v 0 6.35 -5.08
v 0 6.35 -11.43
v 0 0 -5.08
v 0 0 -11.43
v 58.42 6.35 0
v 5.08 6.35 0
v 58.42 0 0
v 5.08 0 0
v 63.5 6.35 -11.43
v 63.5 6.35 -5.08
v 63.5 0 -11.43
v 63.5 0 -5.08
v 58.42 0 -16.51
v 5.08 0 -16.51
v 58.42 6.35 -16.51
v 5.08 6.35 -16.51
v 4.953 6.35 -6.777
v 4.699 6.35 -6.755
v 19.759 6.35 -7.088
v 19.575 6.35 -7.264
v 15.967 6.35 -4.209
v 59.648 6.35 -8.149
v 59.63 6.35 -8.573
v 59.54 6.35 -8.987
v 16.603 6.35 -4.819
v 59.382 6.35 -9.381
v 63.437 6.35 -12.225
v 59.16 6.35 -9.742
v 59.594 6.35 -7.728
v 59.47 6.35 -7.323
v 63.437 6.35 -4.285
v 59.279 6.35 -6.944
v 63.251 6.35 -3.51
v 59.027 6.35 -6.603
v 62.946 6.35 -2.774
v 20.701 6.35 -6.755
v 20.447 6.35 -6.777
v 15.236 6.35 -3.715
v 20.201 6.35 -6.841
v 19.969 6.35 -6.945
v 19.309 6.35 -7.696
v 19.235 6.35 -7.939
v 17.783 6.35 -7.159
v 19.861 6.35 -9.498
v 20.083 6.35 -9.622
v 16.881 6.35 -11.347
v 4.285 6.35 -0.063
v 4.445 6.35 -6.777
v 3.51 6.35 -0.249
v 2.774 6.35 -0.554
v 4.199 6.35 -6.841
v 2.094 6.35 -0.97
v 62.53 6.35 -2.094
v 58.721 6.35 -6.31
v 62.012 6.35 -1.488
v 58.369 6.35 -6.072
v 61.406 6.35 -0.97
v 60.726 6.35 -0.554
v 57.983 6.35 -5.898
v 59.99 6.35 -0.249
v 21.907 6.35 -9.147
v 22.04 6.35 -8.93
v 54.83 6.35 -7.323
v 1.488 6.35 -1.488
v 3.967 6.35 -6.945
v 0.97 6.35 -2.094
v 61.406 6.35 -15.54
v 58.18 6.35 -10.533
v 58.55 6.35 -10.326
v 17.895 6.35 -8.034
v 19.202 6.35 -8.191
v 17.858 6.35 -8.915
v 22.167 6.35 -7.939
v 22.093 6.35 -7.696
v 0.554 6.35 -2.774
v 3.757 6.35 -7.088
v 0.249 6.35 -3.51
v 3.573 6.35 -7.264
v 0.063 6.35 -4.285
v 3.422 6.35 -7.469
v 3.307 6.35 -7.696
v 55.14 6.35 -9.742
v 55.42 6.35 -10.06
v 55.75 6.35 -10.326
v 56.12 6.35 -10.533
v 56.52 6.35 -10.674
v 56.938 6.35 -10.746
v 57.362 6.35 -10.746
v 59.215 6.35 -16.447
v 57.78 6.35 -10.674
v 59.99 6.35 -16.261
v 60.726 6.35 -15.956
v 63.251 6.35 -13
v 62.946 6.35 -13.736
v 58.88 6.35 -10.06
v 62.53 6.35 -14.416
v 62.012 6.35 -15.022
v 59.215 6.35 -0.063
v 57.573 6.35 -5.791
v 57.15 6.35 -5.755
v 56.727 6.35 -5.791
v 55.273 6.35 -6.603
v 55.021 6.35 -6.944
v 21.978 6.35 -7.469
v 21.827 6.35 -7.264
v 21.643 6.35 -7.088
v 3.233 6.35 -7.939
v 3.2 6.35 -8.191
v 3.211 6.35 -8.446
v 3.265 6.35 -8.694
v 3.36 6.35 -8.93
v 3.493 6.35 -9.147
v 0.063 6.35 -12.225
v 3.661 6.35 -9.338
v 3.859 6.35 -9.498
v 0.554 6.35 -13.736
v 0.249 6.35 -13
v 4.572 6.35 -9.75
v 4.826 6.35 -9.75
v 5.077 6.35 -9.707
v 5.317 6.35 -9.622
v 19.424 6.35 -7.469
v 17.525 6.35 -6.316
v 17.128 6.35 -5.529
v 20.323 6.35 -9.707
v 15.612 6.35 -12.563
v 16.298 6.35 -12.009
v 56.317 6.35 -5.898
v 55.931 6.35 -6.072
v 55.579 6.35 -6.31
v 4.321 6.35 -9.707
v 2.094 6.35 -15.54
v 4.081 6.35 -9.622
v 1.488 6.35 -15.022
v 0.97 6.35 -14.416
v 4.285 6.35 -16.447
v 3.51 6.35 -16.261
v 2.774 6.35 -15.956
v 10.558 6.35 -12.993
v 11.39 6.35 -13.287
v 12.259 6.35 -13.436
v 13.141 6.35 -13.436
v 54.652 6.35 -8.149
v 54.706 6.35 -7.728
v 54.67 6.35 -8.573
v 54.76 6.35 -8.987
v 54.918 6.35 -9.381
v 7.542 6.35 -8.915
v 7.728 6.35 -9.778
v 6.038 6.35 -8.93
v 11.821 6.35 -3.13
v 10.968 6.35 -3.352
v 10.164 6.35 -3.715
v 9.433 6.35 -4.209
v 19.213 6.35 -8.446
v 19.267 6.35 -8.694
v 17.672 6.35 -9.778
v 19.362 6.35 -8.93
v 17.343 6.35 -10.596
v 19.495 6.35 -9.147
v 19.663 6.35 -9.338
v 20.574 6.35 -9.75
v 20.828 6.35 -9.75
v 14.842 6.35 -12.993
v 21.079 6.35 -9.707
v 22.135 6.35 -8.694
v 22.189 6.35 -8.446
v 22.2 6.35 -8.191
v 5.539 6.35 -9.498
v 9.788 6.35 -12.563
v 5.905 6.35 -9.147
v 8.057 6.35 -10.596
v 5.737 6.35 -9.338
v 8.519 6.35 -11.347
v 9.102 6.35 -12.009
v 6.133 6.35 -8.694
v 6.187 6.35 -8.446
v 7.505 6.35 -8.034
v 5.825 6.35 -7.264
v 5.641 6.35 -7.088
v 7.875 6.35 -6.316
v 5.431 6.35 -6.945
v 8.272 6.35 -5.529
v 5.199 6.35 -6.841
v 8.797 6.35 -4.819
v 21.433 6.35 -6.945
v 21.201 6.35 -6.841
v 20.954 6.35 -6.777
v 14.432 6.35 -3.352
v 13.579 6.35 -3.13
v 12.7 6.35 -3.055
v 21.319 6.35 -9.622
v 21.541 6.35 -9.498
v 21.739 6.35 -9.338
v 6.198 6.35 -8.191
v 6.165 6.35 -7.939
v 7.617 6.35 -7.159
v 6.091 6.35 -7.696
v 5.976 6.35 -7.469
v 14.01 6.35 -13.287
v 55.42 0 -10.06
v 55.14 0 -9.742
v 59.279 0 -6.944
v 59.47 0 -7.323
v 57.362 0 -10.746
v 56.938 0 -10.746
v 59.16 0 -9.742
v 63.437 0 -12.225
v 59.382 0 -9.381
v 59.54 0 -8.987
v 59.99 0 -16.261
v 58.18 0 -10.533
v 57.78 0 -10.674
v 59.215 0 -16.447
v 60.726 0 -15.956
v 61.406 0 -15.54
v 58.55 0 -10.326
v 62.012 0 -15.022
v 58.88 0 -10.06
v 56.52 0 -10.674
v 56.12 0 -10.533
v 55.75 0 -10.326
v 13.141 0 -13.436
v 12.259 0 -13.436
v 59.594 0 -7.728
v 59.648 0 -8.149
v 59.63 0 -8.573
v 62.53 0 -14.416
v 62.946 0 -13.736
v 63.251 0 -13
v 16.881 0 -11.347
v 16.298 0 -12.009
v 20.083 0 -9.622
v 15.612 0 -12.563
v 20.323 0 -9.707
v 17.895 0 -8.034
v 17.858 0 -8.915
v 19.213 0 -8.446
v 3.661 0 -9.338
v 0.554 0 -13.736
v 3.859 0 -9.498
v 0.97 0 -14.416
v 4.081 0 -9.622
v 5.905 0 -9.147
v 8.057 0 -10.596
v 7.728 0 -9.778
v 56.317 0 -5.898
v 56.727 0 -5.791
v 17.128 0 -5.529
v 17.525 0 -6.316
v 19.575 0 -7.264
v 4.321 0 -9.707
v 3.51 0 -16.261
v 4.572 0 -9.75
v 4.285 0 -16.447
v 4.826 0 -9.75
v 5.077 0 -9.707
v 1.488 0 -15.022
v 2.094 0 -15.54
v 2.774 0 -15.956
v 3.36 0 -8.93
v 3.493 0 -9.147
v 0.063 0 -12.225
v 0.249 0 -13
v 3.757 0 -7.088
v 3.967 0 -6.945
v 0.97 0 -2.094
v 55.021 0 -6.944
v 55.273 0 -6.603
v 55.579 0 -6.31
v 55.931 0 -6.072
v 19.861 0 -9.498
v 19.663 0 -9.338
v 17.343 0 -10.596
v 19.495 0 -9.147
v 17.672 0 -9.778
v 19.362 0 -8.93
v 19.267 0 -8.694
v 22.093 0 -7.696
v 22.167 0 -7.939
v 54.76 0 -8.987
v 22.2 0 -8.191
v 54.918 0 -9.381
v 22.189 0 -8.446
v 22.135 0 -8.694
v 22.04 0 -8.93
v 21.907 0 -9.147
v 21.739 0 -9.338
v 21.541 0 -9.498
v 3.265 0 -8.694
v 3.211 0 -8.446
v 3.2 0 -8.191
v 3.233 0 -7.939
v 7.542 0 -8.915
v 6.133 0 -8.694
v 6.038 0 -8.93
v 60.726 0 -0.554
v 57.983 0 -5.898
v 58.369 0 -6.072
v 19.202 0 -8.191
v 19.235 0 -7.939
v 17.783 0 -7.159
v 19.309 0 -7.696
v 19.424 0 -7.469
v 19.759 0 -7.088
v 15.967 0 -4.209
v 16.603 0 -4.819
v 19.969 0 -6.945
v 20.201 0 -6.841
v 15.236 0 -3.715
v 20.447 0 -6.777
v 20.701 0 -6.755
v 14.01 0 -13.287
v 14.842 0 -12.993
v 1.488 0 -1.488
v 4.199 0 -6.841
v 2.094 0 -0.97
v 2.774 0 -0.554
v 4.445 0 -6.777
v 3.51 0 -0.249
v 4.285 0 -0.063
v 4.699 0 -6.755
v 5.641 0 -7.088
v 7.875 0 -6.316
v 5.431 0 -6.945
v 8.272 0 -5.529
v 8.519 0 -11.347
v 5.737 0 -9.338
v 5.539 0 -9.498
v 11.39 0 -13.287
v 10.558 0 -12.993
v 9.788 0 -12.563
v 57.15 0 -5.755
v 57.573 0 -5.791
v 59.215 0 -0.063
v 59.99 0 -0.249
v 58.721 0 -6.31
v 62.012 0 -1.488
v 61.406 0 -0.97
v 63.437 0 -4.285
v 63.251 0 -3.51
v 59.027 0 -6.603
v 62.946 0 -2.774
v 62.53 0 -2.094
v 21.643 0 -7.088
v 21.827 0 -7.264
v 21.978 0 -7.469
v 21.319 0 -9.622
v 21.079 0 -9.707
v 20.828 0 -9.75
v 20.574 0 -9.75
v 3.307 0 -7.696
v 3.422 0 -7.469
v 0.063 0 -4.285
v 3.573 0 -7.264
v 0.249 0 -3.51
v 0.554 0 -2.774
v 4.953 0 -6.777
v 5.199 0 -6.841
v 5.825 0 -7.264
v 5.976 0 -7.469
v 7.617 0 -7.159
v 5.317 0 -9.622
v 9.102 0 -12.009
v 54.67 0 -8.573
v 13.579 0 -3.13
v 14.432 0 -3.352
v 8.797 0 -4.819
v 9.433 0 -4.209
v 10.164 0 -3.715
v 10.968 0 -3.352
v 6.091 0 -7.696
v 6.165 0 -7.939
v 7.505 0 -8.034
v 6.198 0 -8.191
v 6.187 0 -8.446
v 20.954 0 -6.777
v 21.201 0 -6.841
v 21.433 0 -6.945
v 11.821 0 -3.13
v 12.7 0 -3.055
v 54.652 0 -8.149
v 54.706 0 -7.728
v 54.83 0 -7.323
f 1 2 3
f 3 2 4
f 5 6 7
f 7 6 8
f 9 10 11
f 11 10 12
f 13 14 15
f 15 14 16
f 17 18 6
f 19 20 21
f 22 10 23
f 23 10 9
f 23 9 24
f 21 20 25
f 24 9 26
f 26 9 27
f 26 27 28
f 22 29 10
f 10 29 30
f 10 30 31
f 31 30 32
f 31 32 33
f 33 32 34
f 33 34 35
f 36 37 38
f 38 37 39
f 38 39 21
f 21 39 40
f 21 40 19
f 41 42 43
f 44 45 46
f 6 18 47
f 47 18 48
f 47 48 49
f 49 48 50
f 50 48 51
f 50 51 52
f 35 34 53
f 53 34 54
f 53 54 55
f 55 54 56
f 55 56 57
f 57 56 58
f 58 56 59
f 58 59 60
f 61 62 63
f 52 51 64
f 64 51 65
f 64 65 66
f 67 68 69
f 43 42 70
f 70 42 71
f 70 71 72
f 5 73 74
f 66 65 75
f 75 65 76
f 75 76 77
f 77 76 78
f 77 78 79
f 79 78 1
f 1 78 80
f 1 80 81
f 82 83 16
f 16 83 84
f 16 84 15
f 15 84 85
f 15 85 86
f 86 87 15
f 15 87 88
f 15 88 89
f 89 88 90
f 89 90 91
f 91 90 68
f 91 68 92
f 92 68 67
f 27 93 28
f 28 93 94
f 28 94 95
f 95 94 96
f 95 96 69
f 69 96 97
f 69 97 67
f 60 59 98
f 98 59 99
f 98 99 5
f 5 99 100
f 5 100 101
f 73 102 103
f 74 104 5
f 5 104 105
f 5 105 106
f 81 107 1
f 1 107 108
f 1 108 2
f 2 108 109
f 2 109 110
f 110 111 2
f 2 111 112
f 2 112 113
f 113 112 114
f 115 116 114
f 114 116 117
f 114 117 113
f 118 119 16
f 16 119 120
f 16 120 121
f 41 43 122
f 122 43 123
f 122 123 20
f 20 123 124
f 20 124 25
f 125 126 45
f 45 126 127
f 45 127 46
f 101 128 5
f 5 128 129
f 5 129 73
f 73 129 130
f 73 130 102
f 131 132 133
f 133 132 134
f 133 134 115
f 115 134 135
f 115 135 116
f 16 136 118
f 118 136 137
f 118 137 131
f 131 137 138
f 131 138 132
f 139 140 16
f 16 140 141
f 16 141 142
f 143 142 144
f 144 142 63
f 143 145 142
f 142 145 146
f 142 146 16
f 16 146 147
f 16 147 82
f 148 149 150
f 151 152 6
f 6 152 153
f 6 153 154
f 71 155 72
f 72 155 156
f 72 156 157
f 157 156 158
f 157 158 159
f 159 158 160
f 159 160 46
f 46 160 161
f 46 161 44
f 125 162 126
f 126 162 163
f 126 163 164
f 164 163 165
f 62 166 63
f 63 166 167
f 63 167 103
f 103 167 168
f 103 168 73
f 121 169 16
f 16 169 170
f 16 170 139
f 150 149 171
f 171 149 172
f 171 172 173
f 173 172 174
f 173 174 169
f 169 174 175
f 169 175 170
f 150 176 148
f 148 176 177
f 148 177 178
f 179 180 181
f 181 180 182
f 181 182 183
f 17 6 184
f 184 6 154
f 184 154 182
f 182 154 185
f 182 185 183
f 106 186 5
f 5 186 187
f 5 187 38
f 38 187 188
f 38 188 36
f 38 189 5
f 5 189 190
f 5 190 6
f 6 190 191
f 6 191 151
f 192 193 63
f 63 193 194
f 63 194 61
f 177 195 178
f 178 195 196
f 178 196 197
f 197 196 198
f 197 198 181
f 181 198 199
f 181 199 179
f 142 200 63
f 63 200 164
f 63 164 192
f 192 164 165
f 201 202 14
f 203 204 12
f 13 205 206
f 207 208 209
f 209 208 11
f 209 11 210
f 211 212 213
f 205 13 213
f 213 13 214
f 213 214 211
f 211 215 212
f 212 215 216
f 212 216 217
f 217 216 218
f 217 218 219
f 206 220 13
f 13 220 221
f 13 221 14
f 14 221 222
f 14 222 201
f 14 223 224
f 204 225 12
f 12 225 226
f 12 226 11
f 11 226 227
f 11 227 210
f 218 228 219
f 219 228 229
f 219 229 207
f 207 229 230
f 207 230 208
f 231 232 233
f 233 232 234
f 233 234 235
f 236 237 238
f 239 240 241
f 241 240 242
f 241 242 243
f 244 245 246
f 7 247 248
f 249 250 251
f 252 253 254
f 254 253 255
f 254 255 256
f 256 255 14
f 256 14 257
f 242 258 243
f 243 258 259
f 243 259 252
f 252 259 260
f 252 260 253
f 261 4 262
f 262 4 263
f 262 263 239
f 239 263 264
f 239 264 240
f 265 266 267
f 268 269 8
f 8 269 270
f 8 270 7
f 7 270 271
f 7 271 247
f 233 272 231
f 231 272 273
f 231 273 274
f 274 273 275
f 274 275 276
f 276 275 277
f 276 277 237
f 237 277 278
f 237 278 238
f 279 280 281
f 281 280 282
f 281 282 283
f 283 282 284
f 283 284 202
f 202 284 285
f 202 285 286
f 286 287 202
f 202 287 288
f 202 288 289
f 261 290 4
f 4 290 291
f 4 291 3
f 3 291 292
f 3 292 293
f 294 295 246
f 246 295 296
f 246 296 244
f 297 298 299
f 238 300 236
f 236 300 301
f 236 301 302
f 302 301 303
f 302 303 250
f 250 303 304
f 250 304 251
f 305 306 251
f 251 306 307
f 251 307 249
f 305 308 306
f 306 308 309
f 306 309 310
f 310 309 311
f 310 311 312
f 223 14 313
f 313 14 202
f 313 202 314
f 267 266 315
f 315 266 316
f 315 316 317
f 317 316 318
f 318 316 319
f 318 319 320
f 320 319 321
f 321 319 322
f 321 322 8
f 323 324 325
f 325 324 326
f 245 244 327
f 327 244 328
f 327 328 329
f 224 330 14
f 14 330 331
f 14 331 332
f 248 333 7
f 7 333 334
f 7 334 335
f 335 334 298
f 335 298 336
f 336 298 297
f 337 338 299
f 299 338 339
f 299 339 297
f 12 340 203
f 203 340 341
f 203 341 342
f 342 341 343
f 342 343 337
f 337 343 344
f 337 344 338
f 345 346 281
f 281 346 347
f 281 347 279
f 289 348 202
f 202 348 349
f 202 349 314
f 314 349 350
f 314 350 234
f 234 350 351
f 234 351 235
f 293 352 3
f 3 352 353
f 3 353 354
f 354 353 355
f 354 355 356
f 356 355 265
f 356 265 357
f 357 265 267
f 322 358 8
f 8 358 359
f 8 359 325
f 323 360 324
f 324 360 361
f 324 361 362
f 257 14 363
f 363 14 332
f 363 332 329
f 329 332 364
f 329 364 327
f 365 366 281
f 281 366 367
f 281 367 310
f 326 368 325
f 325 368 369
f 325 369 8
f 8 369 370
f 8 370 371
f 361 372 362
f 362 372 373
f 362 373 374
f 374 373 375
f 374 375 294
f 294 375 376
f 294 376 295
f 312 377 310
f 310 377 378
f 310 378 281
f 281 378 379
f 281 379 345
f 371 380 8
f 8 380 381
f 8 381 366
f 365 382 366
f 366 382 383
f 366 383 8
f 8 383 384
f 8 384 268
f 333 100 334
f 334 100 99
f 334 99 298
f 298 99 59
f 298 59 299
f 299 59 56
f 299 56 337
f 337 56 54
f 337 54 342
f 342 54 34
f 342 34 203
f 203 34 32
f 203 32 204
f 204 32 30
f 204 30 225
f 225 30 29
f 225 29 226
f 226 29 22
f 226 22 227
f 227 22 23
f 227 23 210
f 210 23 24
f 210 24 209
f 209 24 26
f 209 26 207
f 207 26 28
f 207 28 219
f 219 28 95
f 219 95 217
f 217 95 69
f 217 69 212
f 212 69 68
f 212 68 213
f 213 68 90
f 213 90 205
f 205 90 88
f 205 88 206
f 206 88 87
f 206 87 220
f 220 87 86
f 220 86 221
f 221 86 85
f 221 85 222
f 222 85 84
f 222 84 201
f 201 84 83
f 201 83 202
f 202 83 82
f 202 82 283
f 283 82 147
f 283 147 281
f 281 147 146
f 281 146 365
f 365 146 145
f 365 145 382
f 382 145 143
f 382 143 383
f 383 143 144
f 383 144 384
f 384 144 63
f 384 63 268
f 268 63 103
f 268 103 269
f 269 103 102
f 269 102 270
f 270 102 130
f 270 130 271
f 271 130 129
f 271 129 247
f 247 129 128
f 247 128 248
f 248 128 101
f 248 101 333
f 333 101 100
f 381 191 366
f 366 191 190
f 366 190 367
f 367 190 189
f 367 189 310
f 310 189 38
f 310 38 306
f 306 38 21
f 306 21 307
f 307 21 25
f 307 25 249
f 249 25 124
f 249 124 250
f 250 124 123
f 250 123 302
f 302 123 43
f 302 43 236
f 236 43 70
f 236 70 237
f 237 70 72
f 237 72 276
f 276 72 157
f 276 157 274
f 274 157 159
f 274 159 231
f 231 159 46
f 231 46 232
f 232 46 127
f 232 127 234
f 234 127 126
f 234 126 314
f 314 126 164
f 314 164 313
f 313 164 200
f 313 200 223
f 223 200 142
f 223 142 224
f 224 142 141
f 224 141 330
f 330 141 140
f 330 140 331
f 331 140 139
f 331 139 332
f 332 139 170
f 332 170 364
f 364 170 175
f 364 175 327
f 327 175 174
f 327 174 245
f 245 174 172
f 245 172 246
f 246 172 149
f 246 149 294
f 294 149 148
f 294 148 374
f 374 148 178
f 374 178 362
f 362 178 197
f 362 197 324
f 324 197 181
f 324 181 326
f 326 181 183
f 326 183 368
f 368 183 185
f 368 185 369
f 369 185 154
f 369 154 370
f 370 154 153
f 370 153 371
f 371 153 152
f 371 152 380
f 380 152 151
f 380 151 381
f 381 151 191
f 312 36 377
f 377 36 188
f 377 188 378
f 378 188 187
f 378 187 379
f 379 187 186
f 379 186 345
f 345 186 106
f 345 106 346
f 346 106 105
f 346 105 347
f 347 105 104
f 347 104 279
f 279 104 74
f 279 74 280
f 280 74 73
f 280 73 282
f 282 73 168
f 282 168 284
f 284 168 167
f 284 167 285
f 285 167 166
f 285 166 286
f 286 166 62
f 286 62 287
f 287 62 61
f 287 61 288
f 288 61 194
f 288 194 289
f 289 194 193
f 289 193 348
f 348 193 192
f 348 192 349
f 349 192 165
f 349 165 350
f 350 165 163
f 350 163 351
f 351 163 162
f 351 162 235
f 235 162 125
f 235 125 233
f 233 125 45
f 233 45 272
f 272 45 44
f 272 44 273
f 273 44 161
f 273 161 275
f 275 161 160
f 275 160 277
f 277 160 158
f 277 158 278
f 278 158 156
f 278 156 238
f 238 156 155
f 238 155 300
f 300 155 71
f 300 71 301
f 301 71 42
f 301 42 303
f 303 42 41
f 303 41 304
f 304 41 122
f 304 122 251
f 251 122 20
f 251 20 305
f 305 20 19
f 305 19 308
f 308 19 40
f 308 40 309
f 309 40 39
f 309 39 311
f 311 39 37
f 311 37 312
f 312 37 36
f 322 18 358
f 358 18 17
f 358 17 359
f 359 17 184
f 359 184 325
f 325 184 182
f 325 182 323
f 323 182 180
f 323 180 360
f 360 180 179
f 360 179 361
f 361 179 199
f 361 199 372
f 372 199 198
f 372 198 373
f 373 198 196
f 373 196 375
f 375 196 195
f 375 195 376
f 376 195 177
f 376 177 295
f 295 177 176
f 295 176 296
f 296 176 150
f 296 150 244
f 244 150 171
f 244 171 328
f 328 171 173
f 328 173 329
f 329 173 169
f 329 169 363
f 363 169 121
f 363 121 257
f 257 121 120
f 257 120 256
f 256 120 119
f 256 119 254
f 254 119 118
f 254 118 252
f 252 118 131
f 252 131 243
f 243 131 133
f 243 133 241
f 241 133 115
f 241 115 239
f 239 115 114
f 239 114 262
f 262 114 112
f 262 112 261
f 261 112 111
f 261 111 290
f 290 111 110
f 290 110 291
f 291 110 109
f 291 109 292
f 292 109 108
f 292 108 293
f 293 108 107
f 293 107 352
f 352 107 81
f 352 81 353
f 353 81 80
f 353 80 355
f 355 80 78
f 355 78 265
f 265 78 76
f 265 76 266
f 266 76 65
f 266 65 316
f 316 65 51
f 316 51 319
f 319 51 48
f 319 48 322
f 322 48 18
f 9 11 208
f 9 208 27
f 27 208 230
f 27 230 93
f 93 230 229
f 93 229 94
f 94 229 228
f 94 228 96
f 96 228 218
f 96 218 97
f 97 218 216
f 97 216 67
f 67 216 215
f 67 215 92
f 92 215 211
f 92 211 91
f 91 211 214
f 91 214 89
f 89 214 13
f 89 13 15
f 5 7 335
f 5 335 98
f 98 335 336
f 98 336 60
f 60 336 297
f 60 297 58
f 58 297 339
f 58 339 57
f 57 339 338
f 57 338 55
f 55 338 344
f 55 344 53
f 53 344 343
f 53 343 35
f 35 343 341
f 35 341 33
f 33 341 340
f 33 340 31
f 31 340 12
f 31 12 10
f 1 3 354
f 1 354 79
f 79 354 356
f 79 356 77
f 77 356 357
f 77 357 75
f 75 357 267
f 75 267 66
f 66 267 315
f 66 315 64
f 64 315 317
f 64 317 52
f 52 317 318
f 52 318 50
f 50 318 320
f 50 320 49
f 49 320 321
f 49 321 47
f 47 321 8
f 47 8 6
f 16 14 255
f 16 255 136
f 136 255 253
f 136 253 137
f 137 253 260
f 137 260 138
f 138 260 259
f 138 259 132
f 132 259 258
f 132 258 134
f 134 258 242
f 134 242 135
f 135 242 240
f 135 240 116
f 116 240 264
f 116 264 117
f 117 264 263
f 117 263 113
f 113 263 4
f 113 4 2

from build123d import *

# Parameters (mm, degrees)
SKETCH1_W              = 63.5
SKETCH1_H              = 16.51
BOSS_EXTRUDE1_DEPTH    = 6.35
F_5_0MM_DOWEL_HOLE1_D  = 5
F_10_0MM_DOWEL_HOLE1_D = 10.4
F_3_0MM_DOWEL_HOLE1_D  = 3
FILLET1_R              = 5.08


with BuildPart() as part:
    # Sketch1 → Boss-Extrude1 (new body)
    with BuildSketch(Plane(origin=(0, 0, 0), x_dir=(1, 0, 0), z_dir=(0, 1, 0))):
        with Locations((31.75, 8.255)):
            Rectangle(SKETCH1_W, SKETCH1_H)
    extrude(amount=BOSS_EXTRUDE1_DEPTH)

    # Ø5.0mm Dowel Hole1 (through all)
    with Locations(Plane(origin=(0, 6.35, 0), x_dir=(1, 0, 0), z_dir=(0, 1, 0))):
        with Locations((57.15, 8.255)):
            Hole(F_5_0MM_DOWEL_HOLE1_D / 2)

    # Ø10.0mm Dowel Hole1 (through all)
    with Locations(Plane(origin=(12.7, 6.35, -8.255), x_dir=(0, 0, 1), z_dir=(0, 1, 0))):
        with Locations((0, 0)):
            Hole(F_10_0MM_DOWEL_HOLE1_D / 2)

    # Ø3.0mm Dowel Hole1 (through all)
    with Locations(Plane(origin=(0, 6.35, 0), x_dir=(1, 0, 0), z_dir=(0, 1, 0))):
        with Locations((4.699, 8.255), (20.701, 8.255)):
            Hole(F_3_0MM_DOWEL_HOLE1_D / 2)

    # Fillet1
    fillet1_edges = [part.edges().sort_by_distance(p)[0] for p in [
        (0, 3.175, -16.51),
        (63.5, 3.175, -16.51),
        (63.5, 3.175, 0),
        (0, 3.175, 0),
    ]]
    fillet(fillet1_edges, radius=FILLET1_R)


solid = part.part
